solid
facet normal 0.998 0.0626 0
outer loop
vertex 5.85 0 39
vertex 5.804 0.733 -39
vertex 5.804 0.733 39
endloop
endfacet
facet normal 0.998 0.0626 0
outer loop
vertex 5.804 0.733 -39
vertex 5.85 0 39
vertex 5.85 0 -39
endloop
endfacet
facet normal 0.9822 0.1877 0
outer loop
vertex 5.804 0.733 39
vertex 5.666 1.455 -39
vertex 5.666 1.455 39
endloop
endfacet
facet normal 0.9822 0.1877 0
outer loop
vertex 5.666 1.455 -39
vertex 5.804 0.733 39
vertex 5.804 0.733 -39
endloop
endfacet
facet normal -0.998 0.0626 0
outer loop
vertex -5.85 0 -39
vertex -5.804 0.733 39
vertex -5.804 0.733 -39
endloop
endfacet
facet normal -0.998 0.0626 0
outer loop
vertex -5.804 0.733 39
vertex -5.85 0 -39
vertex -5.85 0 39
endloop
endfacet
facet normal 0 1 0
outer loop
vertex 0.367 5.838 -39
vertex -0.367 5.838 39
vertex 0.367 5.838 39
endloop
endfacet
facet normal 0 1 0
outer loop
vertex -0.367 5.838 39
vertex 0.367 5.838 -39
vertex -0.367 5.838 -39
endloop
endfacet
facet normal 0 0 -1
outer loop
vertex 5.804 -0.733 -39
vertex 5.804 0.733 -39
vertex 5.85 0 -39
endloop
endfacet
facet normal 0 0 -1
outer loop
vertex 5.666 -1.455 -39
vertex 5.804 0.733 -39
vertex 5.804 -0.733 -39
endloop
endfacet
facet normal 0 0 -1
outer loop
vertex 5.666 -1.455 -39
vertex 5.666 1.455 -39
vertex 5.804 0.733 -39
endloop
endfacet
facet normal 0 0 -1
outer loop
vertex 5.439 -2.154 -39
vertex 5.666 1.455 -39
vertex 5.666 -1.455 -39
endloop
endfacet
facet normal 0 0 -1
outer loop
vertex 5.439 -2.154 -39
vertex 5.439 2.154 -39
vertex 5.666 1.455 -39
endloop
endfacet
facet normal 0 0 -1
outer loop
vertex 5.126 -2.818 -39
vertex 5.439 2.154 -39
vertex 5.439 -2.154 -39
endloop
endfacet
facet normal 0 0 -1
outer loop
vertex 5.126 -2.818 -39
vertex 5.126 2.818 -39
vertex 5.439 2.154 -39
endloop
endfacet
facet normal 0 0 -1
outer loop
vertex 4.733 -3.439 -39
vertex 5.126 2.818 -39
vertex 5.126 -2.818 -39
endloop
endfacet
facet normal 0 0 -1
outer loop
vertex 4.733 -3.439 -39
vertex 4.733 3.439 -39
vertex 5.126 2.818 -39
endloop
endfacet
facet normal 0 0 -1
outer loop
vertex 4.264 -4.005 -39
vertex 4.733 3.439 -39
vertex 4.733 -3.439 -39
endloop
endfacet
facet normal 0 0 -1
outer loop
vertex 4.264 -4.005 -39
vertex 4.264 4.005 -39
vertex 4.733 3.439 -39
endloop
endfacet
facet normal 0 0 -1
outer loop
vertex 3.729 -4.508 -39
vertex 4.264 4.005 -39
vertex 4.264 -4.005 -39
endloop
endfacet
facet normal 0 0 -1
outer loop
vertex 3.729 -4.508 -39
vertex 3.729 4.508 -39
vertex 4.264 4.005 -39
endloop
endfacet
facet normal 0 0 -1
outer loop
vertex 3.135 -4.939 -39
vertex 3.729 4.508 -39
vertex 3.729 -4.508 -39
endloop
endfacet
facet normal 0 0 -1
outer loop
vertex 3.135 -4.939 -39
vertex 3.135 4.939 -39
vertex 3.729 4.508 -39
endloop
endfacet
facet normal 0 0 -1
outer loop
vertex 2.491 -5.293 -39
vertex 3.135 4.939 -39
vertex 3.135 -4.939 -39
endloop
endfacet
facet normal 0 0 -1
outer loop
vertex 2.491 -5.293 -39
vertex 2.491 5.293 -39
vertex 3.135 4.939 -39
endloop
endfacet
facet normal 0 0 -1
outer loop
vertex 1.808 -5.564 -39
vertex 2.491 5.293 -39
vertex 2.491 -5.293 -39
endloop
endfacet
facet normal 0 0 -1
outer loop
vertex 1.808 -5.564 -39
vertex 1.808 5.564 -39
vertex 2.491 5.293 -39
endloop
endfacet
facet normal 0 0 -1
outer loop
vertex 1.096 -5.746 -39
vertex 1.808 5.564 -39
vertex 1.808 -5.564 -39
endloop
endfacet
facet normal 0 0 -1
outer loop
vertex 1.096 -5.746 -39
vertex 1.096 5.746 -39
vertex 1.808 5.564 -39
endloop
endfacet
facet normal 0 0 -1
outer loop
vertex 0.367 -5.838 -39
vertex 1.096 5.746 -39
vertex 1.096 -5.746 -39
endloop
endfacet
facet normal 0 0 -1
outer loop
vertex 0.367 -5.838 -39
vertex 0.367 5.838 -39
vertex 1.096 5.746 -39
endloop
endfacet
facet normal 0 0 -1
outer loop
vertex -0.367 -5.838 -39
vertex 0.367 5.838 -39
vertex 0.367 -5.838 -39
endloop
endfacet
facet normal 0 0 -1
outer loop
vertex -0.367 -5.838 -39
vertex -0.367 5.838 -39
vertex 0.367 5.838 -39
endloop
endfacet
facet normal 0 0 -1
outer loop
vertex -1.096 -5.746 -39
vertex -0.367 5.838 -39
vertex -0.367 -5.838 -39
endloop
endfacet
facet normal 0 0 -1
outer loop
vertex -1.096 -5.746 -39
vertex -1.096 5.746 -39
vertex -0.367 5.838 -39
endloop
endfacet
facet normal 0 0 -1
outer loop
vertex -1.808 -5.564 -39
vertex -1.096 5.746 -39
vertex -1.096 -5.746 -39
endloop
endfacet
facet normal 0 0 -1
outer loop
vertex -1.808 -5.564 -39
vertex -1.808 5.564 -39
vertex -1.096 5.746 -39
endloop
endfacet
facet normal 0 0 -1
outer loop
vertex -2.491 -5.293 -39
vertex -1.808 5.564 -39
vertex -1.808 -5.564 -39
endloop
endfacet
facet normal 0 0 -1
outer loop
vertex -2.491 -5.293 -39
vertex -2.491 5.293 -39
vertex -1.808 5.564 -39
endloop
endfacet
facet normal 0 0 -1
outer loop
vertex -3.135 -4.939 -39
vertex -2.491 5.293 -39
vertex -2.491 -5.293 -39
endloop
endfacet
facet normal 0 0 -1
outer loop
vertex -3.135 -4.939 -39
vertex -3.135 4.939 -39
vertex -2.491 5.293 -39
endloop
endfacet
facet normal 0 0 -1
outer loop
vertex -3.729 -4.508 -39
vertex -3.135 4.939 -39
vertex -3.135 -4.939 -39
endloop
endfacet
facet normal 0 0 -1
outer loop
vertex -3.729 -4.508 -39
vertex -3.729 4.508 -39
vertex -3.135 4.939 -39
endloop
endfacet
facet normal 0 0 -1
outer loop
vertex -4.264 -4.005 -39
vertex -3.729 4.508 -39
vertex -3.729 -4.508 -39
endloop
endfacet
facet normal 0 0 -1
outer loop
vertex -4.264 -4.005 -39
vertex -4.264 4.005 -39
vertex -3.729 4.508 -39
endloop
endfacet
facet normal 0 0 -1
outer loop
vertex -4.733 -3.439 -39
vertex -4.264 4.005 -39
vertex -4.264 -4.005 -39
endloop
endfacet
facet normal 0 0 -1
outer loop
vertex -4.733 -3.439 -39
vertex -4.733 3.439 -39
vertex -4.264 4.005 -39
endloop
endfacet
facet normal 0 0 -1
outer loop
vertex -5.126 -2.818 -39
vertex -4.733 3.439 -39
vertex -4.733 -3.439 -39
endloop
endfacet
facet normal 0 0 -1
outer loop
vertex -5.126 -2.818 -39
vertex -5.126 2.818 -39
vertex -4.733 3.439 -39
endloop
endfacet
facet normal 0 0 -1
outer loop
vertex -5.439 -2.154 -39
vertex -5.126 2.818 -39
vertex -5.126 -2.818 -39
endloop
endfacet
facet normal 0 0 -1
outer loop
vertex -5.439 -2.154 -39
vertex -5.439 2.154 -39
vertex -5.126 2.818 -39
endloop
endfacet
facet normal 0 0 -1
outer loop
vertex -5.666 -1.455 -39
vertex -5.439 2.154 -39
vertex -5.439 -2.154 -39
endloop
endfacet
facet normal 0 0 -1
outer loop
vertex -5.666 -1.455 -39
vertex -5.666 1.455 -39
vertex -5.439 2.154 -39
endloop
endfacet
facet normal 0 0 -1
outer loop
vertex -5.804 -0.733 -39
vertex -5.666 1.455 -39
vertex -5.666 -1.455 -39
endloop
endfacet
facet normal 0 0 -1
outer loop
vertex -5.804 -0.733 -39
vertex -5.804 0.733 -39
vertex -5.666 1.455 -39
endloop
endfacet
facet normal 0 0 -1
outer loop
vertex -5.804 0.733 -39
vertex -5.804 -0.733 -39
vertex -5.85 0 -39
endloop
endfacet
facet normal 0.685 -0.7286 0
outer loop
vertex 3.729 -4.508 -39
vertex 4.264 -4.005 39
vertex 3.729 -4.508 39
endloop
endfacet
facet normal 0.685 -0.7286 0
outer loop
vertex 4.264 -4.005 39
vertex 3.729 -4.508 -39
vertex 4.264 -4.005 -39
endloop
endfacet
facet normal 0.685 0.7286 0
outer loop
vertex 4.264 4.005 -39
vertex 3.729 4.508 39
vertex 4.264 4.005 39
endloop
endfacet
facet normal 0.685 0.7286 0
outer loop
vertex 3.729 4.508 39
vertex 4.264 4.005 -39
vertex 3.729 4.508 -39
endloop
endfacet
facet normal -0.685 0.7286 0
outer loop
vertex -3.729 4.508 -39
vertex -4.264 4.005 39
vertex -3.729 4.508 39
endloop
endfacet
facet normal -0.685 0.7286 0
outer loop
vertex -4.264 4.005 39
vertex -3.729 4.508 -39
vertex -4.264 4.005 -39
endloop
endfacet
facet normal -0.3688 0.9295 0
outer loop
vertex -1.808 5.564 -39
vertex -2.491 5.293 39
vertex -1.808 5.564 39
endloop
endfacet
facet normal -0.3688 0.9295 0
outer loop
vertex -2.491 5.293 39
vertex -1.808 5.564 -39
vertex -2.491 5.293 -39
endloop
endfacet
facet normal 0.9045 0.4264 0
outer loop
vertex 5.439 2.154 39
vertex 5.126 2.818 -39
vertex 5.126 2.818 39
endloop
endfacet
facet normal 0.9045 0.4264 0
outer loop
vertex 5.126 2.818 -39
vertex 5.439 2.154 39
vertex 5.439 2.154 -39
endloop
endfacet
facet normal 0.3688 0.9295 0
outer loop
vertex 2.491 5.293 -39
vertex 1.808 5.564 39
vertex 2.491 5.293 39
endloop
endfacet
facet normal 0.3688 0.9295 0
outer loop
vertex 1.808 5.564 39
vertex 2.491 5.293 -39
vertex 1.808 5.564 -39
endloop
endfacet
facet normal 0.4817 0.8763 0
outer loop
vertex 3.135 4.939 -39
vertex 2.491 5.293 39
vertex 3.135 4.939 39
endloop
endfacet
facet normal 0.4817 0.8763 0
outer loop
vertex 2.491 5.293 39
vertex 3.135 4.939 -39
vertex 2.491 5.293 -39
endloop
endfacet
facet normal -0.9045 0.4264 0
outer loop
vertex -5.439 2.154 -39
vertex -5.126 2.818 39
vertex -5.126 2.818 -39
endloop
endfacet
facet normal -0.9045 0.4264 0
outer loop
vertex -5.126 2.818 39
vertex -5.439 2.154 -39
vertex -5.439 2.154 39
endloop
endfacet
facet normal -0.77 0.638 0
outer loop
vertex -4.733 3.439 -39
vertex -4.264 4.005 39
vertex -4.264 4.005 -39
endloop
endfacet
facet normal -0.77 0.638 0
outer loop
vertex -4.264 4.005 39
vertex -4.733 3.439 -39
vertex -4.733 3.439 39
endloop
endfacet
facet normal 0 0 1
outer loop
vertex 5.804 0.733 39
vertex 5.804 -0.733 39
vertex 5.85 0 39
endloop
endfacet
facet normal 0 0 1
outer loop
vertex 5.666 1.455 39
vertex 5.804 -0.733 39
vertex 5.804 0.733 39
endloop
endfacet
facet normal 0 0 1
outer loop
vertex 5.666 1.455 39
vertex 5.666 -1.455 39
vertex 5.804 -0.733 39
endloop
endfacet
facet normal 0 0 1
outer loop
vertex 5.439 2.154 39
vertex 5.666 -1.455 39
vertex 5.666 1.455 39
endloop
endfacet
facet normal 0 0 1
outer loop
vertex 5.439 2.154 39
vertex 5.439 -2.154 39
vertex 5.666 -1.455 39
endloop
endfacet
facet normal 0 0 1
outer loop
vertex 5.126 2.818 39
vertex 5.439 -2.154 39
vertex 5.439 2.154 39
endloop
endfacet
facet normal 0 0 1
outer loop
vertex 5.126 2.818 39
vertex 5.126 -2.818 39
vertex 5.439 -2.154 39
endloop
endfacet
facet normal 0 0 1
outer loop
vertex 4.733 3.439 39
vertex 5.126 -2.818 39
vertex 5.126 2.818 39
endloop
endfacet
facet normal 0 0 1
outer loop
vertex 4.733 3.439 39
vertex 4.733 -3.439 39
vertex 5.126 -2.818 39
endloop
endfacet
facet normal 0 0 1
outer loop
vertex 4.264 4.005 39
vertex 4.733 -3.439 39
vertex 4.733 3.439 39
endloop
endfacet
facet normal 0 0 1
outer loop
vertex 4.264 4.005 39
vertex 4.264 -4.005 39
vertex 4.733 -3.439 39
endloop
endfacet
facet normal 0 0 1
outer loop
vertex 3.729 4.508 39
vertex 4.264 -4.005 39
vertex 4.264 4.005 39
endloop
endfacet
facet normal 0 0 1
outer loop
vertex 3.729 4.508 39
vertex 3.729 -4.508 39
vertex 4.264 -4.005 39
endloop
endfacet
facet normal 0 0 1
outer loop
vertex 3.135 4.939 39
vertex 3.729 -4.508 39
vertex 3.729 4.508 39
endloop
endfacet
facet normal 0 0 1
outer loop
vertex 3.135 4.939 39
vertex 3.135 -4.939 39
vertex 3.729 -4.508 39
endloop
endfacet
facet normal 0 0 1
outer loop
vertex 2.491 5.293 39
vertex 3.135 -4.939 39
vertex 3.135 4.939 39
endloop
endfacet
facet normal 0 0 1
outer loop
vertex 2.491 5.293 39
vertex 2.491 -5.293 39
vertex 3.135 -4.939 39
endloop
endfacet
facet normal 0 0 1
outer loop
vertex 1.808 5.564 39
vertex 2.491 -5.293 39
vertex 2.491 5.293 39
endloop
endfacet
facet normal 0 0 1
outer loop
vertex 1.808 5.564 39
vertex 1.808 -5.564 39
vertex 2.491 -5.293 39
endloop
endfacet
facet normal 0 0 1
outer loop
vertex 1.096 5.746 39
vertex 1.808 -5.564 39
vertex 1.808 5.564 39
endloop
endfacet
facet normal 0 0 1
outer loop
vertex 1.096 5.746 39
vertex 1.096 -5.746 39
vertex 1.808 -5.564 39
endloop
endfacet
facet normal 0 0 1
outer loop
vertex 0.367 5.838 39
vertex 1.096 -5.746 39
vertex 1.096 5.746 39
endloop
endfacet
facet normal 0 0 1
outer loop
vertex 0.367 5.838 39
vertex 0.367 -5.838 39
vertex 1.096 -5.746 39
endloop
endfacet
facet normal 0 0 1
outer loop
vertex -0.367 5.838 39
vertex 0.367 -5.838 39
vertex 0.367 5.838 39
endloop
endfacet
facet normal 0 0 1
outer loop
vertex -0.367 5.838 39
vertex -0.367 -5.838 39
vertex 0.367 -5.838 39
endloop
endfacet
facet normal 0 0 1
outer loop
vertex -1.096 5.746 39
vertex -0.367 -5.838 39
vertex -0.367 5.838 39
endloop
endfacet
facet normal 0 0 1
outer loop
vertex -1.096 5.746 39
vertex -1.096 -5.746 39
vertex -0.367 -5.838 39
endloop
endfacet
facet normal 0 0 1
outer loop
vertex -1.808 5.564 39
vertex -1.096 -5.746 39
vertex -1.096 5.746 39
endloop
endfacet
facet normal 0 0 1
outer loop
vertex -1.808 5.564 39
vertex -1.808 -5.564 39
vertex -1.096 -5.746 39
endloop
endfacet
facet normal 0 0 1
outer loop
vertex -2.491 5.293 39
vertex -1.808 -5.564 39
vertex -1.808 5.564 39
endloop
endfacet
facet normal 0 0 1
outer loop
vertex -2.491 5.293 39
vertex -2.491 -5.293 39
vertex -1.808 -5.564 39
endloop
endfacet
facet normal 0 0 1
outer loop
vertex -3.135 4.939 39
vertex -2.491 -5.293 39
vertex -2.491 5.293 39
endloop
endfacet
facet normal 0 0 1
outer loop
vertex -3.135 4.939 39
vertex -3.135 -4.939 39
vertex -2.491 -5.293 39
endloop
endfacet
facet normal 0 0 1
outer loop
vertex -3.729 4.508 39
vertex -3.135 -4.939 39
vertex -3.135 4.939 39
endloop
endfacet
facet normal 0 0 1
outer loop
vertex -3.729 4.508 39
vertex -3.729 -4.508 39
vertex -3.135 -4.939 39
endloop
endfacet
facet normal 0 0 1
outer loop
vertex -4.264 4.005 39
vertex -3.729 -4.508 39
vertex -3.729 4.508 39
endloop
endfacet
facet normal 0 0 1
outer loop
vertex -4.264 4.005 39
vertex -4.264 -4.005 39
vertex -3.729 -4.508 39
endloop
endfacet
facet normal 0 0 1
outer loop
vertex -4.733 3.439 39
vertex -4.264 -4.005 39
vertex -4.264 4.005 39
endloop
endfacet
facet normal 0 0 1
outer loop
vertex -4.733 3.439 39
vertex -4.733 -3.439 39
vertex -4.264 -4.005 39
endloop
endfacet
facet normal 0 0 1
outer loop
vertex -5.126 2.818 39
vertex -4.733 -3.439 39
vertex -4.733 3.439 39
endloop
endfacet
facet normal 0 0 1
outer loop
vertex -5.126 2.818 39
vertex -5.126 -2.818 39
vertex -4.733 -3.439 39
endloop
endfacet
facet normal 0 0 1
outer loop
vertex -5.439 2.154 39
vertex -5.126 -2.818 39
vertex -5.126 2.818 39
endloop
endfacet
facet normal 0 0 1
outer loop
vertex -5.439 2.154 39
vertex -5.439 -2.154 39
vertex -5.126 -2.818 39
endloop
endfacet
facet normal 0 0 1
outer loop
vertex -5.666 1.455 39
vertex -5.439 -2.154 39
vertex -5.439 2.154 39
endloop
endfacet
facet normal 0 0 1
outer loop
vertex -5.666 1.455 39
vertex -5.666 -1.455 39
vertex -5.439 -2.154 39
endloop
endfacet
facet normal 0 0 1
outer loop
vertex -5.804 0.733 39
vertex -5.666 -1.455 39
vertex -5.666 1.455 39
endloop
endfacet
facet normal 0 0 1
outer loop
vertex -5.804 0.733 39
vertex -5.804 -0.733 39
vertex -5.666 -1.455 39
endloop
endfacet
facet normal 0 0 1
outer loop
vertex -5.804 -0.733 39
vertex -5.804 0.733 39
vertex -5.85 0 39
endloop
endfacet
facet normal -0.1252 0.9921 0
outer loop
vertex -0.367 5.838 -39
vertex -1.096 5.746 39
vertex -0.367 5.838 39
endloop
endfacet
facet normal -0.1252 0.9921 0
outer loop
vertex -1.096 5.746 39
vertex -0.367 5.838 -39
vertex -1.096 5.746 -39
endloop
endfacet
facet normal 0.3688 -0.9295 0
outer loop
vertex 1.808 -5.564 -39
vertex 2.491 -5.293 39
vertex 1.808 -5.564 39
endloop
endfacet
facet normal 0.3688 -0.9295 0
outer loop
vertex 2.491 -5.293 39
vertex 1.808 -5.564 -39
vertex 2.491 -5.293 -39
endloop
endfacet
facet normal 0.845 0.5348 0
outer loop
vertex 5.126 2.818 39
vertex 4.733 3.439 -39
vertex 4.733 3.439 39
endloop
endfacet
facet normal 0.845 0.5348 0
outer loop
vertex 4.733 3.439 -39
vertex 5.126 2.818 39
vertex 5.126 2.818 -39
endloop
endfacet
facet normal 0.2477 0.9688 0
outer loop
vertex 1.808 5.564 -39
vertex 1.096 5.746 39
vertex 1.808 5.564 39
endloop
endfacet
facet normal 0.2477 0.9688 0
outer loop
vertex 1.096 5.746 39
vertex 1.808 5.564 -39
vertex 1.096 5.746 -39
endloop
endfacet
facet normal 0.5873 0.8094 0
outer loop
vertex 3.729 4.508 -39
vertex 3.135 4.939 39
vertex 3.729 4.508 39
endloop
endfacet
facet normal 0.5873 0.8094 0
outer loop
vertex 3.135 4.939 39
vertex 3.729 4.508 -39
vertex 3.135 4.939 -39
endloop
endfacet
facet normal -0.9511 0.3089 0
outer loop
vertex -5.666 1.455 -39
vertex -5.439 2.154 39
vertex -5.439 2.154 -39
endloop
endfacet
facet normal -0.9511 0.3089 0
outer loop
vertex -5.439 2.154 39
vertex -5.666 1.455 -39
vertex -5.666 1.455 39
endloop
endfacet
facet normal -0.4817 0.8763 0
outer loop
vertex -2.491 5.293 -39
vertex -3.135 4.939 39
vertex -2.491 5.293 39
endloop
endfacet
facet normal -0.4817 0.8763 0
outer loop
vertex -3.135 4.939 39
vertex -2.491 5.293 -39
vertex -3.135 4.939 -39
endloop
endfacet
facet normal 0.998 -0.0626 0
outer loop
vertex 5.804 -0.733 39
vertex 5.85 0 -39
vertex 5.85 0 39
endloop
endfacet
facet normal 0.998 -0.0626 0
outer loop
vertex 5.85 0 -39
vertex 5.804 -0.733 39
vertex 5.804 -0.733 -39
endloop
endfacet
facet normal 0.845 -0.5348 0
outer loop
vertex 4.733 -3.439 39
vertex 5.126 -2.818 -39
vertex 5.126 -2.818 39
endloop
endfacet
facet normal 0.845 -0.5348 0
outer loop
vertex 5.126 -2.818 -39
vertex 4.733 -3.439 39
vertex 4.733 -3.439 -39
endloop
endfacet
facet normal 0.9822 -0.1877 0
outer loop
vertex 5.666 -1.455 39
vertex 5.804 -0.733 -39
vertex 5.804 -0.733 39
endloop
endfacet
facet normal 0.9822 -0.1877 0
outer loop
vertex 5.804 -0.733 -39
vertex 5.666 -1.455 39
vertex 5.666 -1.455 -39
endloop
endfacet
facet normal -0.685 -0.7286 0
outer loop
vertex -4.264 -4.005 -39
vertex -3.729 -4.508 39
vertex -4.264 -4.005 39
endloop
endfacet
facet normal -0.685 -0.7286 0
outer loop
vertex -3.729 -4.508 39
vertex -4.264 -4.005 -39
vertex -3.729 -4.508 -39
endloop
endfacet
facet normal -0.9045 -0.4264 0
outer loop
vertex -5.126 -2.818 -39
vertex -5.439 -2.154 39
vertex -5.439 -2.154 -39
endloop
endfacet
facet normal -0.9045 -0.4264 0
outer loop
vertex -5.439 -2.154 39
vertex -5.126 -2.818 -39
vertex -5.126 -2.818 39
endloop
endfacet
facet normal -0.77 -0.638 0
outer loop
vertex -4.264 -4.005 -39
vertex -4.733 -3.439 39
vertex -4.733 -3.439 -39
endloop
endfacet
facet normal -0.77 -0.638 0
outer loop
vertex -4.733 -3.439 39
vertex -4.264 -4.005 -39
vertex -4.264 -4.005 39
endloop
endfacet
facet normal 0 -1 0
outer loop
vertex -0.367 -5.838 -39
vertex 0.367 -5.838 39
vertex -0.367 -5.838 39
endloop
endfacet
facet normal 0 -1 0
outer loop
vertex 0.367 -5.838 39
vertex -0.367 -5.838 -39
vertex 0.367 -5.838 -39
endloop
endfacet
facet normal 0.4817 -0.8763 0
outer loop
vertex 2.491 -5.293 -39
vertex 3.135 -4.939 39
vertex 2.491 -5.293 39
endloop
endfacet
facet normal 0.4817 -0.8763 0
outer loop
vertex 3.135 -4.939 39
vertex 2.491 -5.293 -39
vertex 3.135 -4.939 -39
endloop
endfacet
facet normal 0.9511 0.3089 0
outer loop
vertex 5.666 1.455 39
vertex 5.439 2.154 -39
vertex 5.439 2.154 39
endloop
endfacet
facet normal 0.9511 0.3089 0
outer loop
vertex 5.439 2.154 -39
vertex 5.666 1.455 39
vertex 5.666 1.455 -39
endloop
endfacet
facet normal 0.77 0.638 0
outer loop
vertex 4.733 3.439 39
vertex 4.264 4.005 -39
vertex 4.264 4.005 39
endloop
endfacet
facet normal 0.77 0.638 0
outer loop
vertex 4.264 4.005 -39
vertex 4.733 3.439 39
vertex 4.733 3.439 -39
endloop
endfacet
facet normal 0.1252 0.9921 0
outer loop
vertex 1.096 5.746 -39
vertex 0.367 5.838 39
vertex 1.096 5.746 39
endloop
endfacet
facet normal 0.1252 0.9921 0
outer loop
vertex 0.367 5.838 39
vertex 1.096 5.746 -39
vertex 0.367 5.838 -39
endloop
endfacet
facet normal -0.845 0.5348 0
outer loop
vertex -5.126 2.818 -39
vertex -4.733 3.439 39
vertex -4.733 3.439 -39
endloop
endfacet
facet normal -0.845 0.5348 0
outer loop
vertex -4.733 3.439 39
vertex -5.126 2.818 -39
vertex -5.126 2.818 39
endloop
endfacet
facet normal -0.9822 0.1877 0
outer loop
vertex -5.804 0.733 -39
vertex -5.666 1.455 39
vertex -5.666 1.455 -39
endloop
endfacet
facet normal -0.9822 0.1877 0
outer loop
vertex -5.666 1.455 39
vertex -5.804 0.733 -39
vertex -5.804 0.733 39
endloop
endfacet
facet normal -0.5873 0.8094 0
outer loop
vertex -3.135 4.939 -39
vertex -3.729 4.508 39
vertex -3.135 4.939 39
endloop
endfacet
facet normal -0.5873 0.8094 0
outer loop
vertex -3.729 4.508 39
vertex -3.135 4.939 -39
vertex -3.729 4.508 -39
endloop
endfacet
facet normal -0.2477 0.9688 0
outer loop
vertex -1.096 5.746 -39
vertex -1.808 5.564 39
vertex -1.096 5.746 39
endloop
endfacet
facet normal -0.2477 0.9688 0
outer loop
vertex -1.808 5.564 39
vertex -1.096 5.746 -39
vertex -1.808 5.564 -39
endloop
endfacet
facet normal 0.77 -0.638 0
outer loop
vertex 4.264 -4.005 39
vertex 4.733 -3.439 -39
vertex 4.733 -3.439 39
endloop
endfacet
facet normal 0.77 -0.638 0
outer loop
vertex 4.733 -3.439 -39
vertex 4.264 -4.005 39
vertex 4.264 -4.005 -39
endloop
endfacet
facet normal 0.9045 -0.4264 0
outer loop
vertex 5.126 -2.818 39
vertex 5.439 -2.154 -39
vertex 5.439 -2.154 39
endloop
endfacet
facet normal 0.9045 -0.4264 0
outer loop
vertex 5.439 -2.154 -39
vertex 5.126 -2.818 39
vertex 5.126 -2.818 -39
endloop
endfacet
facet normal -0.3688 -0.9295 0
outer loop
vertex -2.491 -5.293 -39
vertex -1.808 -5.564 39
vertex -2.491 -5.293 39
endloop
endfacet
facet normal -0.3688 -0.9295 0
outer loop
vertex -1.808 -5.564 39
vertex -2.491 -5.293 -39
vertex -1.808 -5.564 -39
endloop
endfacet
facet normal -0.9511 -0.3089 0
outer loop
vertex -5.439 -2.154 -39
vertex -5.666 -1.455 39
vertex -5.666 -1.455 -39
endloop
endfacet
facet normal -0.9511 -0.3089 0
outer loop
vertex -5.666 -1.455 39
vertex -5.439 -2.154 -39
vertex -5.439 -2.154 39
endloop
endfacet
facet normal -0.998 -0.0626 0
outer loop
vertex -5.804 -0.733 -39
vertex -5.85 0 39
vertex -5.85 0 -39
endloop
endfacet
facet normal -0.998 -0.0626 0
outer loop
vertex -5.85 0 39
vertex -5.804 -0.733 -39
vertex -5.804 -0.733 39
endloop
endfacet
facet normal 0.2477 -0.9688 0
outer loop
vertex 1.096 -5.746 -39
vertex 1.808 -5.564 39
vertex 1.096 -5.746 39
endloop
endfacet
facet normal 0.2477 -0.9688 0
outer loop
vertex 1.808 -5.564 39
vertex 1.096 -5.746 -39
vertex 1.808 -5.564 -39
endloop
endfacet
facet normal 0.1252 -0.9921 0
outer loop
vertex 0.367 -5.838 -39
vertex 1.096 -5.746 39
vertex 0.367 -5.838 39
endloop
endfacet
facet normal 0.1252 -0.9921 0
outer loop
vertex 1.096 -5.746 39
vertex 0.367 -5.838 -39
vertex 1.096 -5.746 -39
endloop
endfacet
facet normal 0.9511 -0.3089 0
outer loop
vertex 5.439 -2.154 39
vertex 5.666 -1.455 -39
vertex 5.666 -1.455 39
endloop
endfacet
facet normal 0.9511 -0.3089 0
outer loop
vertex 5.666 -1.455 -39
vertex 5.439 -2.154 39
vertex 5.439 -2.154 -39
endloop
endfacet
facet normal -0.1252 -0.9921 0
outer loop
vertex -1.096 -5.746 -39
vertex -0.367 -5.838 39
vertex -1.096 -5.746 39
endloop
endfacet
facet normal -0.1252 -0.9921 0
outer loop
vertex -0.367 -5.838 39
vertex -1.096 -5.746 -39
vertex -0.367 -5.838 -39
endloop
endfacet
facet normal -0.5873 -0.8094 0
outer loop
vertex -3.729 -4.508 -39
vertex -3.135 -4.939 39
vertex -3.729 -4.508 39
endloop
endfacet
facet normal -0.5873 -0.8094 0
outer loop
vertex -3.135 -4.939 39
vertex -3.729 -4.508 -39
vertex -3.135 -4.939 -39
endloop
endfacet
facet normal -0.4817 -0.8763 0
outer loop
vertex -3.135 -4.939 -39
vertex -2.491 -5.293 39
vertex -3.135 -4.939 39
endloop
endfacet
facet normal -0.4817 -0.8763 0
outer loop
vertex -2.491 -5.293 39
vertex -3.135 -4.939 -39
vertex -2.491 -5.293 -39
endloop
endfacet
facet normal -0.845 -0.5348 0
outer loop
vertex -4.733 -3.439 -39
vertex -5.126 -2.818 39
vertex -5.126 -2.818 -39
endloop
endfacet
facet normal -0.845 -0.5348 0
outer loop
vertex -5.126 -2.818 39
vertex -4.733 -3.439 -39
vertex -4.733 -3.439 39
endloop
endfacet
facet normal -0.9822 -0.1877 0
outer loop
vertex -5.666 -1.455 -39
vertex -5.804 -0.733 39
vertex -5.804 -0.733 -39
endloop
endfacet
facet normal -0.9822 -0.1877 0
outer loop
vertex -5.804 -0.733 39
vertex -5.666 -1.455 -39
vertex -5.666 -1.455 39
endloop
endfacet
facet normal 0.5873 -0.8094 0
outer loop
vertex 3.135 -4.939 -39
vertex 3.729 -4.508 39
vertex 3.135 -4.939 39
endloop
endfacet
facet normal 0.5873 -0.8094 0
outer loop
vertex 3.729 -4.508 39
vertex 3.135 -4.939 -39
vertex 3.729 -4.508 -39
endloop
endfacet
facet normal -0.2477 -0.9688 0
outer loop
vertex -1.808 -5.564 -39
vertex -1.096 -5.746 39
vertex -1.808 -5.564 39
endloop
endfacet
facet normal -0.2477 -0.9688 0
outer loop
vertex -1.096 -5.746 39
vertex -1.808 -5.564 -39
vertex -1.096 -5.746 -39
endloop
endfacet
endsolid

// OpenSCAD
$fn = 50;


difference() {
	union() {
		translate(v = [0, 0, -39.0000000000]) {
			cylinder(h = 78, r = 5.8500000000);
		}
	}
	union() {
		translate(v = [0, 0, -100.0000000000]) {
			cylinder(h = 200, r = 0);
		}
	}
}
